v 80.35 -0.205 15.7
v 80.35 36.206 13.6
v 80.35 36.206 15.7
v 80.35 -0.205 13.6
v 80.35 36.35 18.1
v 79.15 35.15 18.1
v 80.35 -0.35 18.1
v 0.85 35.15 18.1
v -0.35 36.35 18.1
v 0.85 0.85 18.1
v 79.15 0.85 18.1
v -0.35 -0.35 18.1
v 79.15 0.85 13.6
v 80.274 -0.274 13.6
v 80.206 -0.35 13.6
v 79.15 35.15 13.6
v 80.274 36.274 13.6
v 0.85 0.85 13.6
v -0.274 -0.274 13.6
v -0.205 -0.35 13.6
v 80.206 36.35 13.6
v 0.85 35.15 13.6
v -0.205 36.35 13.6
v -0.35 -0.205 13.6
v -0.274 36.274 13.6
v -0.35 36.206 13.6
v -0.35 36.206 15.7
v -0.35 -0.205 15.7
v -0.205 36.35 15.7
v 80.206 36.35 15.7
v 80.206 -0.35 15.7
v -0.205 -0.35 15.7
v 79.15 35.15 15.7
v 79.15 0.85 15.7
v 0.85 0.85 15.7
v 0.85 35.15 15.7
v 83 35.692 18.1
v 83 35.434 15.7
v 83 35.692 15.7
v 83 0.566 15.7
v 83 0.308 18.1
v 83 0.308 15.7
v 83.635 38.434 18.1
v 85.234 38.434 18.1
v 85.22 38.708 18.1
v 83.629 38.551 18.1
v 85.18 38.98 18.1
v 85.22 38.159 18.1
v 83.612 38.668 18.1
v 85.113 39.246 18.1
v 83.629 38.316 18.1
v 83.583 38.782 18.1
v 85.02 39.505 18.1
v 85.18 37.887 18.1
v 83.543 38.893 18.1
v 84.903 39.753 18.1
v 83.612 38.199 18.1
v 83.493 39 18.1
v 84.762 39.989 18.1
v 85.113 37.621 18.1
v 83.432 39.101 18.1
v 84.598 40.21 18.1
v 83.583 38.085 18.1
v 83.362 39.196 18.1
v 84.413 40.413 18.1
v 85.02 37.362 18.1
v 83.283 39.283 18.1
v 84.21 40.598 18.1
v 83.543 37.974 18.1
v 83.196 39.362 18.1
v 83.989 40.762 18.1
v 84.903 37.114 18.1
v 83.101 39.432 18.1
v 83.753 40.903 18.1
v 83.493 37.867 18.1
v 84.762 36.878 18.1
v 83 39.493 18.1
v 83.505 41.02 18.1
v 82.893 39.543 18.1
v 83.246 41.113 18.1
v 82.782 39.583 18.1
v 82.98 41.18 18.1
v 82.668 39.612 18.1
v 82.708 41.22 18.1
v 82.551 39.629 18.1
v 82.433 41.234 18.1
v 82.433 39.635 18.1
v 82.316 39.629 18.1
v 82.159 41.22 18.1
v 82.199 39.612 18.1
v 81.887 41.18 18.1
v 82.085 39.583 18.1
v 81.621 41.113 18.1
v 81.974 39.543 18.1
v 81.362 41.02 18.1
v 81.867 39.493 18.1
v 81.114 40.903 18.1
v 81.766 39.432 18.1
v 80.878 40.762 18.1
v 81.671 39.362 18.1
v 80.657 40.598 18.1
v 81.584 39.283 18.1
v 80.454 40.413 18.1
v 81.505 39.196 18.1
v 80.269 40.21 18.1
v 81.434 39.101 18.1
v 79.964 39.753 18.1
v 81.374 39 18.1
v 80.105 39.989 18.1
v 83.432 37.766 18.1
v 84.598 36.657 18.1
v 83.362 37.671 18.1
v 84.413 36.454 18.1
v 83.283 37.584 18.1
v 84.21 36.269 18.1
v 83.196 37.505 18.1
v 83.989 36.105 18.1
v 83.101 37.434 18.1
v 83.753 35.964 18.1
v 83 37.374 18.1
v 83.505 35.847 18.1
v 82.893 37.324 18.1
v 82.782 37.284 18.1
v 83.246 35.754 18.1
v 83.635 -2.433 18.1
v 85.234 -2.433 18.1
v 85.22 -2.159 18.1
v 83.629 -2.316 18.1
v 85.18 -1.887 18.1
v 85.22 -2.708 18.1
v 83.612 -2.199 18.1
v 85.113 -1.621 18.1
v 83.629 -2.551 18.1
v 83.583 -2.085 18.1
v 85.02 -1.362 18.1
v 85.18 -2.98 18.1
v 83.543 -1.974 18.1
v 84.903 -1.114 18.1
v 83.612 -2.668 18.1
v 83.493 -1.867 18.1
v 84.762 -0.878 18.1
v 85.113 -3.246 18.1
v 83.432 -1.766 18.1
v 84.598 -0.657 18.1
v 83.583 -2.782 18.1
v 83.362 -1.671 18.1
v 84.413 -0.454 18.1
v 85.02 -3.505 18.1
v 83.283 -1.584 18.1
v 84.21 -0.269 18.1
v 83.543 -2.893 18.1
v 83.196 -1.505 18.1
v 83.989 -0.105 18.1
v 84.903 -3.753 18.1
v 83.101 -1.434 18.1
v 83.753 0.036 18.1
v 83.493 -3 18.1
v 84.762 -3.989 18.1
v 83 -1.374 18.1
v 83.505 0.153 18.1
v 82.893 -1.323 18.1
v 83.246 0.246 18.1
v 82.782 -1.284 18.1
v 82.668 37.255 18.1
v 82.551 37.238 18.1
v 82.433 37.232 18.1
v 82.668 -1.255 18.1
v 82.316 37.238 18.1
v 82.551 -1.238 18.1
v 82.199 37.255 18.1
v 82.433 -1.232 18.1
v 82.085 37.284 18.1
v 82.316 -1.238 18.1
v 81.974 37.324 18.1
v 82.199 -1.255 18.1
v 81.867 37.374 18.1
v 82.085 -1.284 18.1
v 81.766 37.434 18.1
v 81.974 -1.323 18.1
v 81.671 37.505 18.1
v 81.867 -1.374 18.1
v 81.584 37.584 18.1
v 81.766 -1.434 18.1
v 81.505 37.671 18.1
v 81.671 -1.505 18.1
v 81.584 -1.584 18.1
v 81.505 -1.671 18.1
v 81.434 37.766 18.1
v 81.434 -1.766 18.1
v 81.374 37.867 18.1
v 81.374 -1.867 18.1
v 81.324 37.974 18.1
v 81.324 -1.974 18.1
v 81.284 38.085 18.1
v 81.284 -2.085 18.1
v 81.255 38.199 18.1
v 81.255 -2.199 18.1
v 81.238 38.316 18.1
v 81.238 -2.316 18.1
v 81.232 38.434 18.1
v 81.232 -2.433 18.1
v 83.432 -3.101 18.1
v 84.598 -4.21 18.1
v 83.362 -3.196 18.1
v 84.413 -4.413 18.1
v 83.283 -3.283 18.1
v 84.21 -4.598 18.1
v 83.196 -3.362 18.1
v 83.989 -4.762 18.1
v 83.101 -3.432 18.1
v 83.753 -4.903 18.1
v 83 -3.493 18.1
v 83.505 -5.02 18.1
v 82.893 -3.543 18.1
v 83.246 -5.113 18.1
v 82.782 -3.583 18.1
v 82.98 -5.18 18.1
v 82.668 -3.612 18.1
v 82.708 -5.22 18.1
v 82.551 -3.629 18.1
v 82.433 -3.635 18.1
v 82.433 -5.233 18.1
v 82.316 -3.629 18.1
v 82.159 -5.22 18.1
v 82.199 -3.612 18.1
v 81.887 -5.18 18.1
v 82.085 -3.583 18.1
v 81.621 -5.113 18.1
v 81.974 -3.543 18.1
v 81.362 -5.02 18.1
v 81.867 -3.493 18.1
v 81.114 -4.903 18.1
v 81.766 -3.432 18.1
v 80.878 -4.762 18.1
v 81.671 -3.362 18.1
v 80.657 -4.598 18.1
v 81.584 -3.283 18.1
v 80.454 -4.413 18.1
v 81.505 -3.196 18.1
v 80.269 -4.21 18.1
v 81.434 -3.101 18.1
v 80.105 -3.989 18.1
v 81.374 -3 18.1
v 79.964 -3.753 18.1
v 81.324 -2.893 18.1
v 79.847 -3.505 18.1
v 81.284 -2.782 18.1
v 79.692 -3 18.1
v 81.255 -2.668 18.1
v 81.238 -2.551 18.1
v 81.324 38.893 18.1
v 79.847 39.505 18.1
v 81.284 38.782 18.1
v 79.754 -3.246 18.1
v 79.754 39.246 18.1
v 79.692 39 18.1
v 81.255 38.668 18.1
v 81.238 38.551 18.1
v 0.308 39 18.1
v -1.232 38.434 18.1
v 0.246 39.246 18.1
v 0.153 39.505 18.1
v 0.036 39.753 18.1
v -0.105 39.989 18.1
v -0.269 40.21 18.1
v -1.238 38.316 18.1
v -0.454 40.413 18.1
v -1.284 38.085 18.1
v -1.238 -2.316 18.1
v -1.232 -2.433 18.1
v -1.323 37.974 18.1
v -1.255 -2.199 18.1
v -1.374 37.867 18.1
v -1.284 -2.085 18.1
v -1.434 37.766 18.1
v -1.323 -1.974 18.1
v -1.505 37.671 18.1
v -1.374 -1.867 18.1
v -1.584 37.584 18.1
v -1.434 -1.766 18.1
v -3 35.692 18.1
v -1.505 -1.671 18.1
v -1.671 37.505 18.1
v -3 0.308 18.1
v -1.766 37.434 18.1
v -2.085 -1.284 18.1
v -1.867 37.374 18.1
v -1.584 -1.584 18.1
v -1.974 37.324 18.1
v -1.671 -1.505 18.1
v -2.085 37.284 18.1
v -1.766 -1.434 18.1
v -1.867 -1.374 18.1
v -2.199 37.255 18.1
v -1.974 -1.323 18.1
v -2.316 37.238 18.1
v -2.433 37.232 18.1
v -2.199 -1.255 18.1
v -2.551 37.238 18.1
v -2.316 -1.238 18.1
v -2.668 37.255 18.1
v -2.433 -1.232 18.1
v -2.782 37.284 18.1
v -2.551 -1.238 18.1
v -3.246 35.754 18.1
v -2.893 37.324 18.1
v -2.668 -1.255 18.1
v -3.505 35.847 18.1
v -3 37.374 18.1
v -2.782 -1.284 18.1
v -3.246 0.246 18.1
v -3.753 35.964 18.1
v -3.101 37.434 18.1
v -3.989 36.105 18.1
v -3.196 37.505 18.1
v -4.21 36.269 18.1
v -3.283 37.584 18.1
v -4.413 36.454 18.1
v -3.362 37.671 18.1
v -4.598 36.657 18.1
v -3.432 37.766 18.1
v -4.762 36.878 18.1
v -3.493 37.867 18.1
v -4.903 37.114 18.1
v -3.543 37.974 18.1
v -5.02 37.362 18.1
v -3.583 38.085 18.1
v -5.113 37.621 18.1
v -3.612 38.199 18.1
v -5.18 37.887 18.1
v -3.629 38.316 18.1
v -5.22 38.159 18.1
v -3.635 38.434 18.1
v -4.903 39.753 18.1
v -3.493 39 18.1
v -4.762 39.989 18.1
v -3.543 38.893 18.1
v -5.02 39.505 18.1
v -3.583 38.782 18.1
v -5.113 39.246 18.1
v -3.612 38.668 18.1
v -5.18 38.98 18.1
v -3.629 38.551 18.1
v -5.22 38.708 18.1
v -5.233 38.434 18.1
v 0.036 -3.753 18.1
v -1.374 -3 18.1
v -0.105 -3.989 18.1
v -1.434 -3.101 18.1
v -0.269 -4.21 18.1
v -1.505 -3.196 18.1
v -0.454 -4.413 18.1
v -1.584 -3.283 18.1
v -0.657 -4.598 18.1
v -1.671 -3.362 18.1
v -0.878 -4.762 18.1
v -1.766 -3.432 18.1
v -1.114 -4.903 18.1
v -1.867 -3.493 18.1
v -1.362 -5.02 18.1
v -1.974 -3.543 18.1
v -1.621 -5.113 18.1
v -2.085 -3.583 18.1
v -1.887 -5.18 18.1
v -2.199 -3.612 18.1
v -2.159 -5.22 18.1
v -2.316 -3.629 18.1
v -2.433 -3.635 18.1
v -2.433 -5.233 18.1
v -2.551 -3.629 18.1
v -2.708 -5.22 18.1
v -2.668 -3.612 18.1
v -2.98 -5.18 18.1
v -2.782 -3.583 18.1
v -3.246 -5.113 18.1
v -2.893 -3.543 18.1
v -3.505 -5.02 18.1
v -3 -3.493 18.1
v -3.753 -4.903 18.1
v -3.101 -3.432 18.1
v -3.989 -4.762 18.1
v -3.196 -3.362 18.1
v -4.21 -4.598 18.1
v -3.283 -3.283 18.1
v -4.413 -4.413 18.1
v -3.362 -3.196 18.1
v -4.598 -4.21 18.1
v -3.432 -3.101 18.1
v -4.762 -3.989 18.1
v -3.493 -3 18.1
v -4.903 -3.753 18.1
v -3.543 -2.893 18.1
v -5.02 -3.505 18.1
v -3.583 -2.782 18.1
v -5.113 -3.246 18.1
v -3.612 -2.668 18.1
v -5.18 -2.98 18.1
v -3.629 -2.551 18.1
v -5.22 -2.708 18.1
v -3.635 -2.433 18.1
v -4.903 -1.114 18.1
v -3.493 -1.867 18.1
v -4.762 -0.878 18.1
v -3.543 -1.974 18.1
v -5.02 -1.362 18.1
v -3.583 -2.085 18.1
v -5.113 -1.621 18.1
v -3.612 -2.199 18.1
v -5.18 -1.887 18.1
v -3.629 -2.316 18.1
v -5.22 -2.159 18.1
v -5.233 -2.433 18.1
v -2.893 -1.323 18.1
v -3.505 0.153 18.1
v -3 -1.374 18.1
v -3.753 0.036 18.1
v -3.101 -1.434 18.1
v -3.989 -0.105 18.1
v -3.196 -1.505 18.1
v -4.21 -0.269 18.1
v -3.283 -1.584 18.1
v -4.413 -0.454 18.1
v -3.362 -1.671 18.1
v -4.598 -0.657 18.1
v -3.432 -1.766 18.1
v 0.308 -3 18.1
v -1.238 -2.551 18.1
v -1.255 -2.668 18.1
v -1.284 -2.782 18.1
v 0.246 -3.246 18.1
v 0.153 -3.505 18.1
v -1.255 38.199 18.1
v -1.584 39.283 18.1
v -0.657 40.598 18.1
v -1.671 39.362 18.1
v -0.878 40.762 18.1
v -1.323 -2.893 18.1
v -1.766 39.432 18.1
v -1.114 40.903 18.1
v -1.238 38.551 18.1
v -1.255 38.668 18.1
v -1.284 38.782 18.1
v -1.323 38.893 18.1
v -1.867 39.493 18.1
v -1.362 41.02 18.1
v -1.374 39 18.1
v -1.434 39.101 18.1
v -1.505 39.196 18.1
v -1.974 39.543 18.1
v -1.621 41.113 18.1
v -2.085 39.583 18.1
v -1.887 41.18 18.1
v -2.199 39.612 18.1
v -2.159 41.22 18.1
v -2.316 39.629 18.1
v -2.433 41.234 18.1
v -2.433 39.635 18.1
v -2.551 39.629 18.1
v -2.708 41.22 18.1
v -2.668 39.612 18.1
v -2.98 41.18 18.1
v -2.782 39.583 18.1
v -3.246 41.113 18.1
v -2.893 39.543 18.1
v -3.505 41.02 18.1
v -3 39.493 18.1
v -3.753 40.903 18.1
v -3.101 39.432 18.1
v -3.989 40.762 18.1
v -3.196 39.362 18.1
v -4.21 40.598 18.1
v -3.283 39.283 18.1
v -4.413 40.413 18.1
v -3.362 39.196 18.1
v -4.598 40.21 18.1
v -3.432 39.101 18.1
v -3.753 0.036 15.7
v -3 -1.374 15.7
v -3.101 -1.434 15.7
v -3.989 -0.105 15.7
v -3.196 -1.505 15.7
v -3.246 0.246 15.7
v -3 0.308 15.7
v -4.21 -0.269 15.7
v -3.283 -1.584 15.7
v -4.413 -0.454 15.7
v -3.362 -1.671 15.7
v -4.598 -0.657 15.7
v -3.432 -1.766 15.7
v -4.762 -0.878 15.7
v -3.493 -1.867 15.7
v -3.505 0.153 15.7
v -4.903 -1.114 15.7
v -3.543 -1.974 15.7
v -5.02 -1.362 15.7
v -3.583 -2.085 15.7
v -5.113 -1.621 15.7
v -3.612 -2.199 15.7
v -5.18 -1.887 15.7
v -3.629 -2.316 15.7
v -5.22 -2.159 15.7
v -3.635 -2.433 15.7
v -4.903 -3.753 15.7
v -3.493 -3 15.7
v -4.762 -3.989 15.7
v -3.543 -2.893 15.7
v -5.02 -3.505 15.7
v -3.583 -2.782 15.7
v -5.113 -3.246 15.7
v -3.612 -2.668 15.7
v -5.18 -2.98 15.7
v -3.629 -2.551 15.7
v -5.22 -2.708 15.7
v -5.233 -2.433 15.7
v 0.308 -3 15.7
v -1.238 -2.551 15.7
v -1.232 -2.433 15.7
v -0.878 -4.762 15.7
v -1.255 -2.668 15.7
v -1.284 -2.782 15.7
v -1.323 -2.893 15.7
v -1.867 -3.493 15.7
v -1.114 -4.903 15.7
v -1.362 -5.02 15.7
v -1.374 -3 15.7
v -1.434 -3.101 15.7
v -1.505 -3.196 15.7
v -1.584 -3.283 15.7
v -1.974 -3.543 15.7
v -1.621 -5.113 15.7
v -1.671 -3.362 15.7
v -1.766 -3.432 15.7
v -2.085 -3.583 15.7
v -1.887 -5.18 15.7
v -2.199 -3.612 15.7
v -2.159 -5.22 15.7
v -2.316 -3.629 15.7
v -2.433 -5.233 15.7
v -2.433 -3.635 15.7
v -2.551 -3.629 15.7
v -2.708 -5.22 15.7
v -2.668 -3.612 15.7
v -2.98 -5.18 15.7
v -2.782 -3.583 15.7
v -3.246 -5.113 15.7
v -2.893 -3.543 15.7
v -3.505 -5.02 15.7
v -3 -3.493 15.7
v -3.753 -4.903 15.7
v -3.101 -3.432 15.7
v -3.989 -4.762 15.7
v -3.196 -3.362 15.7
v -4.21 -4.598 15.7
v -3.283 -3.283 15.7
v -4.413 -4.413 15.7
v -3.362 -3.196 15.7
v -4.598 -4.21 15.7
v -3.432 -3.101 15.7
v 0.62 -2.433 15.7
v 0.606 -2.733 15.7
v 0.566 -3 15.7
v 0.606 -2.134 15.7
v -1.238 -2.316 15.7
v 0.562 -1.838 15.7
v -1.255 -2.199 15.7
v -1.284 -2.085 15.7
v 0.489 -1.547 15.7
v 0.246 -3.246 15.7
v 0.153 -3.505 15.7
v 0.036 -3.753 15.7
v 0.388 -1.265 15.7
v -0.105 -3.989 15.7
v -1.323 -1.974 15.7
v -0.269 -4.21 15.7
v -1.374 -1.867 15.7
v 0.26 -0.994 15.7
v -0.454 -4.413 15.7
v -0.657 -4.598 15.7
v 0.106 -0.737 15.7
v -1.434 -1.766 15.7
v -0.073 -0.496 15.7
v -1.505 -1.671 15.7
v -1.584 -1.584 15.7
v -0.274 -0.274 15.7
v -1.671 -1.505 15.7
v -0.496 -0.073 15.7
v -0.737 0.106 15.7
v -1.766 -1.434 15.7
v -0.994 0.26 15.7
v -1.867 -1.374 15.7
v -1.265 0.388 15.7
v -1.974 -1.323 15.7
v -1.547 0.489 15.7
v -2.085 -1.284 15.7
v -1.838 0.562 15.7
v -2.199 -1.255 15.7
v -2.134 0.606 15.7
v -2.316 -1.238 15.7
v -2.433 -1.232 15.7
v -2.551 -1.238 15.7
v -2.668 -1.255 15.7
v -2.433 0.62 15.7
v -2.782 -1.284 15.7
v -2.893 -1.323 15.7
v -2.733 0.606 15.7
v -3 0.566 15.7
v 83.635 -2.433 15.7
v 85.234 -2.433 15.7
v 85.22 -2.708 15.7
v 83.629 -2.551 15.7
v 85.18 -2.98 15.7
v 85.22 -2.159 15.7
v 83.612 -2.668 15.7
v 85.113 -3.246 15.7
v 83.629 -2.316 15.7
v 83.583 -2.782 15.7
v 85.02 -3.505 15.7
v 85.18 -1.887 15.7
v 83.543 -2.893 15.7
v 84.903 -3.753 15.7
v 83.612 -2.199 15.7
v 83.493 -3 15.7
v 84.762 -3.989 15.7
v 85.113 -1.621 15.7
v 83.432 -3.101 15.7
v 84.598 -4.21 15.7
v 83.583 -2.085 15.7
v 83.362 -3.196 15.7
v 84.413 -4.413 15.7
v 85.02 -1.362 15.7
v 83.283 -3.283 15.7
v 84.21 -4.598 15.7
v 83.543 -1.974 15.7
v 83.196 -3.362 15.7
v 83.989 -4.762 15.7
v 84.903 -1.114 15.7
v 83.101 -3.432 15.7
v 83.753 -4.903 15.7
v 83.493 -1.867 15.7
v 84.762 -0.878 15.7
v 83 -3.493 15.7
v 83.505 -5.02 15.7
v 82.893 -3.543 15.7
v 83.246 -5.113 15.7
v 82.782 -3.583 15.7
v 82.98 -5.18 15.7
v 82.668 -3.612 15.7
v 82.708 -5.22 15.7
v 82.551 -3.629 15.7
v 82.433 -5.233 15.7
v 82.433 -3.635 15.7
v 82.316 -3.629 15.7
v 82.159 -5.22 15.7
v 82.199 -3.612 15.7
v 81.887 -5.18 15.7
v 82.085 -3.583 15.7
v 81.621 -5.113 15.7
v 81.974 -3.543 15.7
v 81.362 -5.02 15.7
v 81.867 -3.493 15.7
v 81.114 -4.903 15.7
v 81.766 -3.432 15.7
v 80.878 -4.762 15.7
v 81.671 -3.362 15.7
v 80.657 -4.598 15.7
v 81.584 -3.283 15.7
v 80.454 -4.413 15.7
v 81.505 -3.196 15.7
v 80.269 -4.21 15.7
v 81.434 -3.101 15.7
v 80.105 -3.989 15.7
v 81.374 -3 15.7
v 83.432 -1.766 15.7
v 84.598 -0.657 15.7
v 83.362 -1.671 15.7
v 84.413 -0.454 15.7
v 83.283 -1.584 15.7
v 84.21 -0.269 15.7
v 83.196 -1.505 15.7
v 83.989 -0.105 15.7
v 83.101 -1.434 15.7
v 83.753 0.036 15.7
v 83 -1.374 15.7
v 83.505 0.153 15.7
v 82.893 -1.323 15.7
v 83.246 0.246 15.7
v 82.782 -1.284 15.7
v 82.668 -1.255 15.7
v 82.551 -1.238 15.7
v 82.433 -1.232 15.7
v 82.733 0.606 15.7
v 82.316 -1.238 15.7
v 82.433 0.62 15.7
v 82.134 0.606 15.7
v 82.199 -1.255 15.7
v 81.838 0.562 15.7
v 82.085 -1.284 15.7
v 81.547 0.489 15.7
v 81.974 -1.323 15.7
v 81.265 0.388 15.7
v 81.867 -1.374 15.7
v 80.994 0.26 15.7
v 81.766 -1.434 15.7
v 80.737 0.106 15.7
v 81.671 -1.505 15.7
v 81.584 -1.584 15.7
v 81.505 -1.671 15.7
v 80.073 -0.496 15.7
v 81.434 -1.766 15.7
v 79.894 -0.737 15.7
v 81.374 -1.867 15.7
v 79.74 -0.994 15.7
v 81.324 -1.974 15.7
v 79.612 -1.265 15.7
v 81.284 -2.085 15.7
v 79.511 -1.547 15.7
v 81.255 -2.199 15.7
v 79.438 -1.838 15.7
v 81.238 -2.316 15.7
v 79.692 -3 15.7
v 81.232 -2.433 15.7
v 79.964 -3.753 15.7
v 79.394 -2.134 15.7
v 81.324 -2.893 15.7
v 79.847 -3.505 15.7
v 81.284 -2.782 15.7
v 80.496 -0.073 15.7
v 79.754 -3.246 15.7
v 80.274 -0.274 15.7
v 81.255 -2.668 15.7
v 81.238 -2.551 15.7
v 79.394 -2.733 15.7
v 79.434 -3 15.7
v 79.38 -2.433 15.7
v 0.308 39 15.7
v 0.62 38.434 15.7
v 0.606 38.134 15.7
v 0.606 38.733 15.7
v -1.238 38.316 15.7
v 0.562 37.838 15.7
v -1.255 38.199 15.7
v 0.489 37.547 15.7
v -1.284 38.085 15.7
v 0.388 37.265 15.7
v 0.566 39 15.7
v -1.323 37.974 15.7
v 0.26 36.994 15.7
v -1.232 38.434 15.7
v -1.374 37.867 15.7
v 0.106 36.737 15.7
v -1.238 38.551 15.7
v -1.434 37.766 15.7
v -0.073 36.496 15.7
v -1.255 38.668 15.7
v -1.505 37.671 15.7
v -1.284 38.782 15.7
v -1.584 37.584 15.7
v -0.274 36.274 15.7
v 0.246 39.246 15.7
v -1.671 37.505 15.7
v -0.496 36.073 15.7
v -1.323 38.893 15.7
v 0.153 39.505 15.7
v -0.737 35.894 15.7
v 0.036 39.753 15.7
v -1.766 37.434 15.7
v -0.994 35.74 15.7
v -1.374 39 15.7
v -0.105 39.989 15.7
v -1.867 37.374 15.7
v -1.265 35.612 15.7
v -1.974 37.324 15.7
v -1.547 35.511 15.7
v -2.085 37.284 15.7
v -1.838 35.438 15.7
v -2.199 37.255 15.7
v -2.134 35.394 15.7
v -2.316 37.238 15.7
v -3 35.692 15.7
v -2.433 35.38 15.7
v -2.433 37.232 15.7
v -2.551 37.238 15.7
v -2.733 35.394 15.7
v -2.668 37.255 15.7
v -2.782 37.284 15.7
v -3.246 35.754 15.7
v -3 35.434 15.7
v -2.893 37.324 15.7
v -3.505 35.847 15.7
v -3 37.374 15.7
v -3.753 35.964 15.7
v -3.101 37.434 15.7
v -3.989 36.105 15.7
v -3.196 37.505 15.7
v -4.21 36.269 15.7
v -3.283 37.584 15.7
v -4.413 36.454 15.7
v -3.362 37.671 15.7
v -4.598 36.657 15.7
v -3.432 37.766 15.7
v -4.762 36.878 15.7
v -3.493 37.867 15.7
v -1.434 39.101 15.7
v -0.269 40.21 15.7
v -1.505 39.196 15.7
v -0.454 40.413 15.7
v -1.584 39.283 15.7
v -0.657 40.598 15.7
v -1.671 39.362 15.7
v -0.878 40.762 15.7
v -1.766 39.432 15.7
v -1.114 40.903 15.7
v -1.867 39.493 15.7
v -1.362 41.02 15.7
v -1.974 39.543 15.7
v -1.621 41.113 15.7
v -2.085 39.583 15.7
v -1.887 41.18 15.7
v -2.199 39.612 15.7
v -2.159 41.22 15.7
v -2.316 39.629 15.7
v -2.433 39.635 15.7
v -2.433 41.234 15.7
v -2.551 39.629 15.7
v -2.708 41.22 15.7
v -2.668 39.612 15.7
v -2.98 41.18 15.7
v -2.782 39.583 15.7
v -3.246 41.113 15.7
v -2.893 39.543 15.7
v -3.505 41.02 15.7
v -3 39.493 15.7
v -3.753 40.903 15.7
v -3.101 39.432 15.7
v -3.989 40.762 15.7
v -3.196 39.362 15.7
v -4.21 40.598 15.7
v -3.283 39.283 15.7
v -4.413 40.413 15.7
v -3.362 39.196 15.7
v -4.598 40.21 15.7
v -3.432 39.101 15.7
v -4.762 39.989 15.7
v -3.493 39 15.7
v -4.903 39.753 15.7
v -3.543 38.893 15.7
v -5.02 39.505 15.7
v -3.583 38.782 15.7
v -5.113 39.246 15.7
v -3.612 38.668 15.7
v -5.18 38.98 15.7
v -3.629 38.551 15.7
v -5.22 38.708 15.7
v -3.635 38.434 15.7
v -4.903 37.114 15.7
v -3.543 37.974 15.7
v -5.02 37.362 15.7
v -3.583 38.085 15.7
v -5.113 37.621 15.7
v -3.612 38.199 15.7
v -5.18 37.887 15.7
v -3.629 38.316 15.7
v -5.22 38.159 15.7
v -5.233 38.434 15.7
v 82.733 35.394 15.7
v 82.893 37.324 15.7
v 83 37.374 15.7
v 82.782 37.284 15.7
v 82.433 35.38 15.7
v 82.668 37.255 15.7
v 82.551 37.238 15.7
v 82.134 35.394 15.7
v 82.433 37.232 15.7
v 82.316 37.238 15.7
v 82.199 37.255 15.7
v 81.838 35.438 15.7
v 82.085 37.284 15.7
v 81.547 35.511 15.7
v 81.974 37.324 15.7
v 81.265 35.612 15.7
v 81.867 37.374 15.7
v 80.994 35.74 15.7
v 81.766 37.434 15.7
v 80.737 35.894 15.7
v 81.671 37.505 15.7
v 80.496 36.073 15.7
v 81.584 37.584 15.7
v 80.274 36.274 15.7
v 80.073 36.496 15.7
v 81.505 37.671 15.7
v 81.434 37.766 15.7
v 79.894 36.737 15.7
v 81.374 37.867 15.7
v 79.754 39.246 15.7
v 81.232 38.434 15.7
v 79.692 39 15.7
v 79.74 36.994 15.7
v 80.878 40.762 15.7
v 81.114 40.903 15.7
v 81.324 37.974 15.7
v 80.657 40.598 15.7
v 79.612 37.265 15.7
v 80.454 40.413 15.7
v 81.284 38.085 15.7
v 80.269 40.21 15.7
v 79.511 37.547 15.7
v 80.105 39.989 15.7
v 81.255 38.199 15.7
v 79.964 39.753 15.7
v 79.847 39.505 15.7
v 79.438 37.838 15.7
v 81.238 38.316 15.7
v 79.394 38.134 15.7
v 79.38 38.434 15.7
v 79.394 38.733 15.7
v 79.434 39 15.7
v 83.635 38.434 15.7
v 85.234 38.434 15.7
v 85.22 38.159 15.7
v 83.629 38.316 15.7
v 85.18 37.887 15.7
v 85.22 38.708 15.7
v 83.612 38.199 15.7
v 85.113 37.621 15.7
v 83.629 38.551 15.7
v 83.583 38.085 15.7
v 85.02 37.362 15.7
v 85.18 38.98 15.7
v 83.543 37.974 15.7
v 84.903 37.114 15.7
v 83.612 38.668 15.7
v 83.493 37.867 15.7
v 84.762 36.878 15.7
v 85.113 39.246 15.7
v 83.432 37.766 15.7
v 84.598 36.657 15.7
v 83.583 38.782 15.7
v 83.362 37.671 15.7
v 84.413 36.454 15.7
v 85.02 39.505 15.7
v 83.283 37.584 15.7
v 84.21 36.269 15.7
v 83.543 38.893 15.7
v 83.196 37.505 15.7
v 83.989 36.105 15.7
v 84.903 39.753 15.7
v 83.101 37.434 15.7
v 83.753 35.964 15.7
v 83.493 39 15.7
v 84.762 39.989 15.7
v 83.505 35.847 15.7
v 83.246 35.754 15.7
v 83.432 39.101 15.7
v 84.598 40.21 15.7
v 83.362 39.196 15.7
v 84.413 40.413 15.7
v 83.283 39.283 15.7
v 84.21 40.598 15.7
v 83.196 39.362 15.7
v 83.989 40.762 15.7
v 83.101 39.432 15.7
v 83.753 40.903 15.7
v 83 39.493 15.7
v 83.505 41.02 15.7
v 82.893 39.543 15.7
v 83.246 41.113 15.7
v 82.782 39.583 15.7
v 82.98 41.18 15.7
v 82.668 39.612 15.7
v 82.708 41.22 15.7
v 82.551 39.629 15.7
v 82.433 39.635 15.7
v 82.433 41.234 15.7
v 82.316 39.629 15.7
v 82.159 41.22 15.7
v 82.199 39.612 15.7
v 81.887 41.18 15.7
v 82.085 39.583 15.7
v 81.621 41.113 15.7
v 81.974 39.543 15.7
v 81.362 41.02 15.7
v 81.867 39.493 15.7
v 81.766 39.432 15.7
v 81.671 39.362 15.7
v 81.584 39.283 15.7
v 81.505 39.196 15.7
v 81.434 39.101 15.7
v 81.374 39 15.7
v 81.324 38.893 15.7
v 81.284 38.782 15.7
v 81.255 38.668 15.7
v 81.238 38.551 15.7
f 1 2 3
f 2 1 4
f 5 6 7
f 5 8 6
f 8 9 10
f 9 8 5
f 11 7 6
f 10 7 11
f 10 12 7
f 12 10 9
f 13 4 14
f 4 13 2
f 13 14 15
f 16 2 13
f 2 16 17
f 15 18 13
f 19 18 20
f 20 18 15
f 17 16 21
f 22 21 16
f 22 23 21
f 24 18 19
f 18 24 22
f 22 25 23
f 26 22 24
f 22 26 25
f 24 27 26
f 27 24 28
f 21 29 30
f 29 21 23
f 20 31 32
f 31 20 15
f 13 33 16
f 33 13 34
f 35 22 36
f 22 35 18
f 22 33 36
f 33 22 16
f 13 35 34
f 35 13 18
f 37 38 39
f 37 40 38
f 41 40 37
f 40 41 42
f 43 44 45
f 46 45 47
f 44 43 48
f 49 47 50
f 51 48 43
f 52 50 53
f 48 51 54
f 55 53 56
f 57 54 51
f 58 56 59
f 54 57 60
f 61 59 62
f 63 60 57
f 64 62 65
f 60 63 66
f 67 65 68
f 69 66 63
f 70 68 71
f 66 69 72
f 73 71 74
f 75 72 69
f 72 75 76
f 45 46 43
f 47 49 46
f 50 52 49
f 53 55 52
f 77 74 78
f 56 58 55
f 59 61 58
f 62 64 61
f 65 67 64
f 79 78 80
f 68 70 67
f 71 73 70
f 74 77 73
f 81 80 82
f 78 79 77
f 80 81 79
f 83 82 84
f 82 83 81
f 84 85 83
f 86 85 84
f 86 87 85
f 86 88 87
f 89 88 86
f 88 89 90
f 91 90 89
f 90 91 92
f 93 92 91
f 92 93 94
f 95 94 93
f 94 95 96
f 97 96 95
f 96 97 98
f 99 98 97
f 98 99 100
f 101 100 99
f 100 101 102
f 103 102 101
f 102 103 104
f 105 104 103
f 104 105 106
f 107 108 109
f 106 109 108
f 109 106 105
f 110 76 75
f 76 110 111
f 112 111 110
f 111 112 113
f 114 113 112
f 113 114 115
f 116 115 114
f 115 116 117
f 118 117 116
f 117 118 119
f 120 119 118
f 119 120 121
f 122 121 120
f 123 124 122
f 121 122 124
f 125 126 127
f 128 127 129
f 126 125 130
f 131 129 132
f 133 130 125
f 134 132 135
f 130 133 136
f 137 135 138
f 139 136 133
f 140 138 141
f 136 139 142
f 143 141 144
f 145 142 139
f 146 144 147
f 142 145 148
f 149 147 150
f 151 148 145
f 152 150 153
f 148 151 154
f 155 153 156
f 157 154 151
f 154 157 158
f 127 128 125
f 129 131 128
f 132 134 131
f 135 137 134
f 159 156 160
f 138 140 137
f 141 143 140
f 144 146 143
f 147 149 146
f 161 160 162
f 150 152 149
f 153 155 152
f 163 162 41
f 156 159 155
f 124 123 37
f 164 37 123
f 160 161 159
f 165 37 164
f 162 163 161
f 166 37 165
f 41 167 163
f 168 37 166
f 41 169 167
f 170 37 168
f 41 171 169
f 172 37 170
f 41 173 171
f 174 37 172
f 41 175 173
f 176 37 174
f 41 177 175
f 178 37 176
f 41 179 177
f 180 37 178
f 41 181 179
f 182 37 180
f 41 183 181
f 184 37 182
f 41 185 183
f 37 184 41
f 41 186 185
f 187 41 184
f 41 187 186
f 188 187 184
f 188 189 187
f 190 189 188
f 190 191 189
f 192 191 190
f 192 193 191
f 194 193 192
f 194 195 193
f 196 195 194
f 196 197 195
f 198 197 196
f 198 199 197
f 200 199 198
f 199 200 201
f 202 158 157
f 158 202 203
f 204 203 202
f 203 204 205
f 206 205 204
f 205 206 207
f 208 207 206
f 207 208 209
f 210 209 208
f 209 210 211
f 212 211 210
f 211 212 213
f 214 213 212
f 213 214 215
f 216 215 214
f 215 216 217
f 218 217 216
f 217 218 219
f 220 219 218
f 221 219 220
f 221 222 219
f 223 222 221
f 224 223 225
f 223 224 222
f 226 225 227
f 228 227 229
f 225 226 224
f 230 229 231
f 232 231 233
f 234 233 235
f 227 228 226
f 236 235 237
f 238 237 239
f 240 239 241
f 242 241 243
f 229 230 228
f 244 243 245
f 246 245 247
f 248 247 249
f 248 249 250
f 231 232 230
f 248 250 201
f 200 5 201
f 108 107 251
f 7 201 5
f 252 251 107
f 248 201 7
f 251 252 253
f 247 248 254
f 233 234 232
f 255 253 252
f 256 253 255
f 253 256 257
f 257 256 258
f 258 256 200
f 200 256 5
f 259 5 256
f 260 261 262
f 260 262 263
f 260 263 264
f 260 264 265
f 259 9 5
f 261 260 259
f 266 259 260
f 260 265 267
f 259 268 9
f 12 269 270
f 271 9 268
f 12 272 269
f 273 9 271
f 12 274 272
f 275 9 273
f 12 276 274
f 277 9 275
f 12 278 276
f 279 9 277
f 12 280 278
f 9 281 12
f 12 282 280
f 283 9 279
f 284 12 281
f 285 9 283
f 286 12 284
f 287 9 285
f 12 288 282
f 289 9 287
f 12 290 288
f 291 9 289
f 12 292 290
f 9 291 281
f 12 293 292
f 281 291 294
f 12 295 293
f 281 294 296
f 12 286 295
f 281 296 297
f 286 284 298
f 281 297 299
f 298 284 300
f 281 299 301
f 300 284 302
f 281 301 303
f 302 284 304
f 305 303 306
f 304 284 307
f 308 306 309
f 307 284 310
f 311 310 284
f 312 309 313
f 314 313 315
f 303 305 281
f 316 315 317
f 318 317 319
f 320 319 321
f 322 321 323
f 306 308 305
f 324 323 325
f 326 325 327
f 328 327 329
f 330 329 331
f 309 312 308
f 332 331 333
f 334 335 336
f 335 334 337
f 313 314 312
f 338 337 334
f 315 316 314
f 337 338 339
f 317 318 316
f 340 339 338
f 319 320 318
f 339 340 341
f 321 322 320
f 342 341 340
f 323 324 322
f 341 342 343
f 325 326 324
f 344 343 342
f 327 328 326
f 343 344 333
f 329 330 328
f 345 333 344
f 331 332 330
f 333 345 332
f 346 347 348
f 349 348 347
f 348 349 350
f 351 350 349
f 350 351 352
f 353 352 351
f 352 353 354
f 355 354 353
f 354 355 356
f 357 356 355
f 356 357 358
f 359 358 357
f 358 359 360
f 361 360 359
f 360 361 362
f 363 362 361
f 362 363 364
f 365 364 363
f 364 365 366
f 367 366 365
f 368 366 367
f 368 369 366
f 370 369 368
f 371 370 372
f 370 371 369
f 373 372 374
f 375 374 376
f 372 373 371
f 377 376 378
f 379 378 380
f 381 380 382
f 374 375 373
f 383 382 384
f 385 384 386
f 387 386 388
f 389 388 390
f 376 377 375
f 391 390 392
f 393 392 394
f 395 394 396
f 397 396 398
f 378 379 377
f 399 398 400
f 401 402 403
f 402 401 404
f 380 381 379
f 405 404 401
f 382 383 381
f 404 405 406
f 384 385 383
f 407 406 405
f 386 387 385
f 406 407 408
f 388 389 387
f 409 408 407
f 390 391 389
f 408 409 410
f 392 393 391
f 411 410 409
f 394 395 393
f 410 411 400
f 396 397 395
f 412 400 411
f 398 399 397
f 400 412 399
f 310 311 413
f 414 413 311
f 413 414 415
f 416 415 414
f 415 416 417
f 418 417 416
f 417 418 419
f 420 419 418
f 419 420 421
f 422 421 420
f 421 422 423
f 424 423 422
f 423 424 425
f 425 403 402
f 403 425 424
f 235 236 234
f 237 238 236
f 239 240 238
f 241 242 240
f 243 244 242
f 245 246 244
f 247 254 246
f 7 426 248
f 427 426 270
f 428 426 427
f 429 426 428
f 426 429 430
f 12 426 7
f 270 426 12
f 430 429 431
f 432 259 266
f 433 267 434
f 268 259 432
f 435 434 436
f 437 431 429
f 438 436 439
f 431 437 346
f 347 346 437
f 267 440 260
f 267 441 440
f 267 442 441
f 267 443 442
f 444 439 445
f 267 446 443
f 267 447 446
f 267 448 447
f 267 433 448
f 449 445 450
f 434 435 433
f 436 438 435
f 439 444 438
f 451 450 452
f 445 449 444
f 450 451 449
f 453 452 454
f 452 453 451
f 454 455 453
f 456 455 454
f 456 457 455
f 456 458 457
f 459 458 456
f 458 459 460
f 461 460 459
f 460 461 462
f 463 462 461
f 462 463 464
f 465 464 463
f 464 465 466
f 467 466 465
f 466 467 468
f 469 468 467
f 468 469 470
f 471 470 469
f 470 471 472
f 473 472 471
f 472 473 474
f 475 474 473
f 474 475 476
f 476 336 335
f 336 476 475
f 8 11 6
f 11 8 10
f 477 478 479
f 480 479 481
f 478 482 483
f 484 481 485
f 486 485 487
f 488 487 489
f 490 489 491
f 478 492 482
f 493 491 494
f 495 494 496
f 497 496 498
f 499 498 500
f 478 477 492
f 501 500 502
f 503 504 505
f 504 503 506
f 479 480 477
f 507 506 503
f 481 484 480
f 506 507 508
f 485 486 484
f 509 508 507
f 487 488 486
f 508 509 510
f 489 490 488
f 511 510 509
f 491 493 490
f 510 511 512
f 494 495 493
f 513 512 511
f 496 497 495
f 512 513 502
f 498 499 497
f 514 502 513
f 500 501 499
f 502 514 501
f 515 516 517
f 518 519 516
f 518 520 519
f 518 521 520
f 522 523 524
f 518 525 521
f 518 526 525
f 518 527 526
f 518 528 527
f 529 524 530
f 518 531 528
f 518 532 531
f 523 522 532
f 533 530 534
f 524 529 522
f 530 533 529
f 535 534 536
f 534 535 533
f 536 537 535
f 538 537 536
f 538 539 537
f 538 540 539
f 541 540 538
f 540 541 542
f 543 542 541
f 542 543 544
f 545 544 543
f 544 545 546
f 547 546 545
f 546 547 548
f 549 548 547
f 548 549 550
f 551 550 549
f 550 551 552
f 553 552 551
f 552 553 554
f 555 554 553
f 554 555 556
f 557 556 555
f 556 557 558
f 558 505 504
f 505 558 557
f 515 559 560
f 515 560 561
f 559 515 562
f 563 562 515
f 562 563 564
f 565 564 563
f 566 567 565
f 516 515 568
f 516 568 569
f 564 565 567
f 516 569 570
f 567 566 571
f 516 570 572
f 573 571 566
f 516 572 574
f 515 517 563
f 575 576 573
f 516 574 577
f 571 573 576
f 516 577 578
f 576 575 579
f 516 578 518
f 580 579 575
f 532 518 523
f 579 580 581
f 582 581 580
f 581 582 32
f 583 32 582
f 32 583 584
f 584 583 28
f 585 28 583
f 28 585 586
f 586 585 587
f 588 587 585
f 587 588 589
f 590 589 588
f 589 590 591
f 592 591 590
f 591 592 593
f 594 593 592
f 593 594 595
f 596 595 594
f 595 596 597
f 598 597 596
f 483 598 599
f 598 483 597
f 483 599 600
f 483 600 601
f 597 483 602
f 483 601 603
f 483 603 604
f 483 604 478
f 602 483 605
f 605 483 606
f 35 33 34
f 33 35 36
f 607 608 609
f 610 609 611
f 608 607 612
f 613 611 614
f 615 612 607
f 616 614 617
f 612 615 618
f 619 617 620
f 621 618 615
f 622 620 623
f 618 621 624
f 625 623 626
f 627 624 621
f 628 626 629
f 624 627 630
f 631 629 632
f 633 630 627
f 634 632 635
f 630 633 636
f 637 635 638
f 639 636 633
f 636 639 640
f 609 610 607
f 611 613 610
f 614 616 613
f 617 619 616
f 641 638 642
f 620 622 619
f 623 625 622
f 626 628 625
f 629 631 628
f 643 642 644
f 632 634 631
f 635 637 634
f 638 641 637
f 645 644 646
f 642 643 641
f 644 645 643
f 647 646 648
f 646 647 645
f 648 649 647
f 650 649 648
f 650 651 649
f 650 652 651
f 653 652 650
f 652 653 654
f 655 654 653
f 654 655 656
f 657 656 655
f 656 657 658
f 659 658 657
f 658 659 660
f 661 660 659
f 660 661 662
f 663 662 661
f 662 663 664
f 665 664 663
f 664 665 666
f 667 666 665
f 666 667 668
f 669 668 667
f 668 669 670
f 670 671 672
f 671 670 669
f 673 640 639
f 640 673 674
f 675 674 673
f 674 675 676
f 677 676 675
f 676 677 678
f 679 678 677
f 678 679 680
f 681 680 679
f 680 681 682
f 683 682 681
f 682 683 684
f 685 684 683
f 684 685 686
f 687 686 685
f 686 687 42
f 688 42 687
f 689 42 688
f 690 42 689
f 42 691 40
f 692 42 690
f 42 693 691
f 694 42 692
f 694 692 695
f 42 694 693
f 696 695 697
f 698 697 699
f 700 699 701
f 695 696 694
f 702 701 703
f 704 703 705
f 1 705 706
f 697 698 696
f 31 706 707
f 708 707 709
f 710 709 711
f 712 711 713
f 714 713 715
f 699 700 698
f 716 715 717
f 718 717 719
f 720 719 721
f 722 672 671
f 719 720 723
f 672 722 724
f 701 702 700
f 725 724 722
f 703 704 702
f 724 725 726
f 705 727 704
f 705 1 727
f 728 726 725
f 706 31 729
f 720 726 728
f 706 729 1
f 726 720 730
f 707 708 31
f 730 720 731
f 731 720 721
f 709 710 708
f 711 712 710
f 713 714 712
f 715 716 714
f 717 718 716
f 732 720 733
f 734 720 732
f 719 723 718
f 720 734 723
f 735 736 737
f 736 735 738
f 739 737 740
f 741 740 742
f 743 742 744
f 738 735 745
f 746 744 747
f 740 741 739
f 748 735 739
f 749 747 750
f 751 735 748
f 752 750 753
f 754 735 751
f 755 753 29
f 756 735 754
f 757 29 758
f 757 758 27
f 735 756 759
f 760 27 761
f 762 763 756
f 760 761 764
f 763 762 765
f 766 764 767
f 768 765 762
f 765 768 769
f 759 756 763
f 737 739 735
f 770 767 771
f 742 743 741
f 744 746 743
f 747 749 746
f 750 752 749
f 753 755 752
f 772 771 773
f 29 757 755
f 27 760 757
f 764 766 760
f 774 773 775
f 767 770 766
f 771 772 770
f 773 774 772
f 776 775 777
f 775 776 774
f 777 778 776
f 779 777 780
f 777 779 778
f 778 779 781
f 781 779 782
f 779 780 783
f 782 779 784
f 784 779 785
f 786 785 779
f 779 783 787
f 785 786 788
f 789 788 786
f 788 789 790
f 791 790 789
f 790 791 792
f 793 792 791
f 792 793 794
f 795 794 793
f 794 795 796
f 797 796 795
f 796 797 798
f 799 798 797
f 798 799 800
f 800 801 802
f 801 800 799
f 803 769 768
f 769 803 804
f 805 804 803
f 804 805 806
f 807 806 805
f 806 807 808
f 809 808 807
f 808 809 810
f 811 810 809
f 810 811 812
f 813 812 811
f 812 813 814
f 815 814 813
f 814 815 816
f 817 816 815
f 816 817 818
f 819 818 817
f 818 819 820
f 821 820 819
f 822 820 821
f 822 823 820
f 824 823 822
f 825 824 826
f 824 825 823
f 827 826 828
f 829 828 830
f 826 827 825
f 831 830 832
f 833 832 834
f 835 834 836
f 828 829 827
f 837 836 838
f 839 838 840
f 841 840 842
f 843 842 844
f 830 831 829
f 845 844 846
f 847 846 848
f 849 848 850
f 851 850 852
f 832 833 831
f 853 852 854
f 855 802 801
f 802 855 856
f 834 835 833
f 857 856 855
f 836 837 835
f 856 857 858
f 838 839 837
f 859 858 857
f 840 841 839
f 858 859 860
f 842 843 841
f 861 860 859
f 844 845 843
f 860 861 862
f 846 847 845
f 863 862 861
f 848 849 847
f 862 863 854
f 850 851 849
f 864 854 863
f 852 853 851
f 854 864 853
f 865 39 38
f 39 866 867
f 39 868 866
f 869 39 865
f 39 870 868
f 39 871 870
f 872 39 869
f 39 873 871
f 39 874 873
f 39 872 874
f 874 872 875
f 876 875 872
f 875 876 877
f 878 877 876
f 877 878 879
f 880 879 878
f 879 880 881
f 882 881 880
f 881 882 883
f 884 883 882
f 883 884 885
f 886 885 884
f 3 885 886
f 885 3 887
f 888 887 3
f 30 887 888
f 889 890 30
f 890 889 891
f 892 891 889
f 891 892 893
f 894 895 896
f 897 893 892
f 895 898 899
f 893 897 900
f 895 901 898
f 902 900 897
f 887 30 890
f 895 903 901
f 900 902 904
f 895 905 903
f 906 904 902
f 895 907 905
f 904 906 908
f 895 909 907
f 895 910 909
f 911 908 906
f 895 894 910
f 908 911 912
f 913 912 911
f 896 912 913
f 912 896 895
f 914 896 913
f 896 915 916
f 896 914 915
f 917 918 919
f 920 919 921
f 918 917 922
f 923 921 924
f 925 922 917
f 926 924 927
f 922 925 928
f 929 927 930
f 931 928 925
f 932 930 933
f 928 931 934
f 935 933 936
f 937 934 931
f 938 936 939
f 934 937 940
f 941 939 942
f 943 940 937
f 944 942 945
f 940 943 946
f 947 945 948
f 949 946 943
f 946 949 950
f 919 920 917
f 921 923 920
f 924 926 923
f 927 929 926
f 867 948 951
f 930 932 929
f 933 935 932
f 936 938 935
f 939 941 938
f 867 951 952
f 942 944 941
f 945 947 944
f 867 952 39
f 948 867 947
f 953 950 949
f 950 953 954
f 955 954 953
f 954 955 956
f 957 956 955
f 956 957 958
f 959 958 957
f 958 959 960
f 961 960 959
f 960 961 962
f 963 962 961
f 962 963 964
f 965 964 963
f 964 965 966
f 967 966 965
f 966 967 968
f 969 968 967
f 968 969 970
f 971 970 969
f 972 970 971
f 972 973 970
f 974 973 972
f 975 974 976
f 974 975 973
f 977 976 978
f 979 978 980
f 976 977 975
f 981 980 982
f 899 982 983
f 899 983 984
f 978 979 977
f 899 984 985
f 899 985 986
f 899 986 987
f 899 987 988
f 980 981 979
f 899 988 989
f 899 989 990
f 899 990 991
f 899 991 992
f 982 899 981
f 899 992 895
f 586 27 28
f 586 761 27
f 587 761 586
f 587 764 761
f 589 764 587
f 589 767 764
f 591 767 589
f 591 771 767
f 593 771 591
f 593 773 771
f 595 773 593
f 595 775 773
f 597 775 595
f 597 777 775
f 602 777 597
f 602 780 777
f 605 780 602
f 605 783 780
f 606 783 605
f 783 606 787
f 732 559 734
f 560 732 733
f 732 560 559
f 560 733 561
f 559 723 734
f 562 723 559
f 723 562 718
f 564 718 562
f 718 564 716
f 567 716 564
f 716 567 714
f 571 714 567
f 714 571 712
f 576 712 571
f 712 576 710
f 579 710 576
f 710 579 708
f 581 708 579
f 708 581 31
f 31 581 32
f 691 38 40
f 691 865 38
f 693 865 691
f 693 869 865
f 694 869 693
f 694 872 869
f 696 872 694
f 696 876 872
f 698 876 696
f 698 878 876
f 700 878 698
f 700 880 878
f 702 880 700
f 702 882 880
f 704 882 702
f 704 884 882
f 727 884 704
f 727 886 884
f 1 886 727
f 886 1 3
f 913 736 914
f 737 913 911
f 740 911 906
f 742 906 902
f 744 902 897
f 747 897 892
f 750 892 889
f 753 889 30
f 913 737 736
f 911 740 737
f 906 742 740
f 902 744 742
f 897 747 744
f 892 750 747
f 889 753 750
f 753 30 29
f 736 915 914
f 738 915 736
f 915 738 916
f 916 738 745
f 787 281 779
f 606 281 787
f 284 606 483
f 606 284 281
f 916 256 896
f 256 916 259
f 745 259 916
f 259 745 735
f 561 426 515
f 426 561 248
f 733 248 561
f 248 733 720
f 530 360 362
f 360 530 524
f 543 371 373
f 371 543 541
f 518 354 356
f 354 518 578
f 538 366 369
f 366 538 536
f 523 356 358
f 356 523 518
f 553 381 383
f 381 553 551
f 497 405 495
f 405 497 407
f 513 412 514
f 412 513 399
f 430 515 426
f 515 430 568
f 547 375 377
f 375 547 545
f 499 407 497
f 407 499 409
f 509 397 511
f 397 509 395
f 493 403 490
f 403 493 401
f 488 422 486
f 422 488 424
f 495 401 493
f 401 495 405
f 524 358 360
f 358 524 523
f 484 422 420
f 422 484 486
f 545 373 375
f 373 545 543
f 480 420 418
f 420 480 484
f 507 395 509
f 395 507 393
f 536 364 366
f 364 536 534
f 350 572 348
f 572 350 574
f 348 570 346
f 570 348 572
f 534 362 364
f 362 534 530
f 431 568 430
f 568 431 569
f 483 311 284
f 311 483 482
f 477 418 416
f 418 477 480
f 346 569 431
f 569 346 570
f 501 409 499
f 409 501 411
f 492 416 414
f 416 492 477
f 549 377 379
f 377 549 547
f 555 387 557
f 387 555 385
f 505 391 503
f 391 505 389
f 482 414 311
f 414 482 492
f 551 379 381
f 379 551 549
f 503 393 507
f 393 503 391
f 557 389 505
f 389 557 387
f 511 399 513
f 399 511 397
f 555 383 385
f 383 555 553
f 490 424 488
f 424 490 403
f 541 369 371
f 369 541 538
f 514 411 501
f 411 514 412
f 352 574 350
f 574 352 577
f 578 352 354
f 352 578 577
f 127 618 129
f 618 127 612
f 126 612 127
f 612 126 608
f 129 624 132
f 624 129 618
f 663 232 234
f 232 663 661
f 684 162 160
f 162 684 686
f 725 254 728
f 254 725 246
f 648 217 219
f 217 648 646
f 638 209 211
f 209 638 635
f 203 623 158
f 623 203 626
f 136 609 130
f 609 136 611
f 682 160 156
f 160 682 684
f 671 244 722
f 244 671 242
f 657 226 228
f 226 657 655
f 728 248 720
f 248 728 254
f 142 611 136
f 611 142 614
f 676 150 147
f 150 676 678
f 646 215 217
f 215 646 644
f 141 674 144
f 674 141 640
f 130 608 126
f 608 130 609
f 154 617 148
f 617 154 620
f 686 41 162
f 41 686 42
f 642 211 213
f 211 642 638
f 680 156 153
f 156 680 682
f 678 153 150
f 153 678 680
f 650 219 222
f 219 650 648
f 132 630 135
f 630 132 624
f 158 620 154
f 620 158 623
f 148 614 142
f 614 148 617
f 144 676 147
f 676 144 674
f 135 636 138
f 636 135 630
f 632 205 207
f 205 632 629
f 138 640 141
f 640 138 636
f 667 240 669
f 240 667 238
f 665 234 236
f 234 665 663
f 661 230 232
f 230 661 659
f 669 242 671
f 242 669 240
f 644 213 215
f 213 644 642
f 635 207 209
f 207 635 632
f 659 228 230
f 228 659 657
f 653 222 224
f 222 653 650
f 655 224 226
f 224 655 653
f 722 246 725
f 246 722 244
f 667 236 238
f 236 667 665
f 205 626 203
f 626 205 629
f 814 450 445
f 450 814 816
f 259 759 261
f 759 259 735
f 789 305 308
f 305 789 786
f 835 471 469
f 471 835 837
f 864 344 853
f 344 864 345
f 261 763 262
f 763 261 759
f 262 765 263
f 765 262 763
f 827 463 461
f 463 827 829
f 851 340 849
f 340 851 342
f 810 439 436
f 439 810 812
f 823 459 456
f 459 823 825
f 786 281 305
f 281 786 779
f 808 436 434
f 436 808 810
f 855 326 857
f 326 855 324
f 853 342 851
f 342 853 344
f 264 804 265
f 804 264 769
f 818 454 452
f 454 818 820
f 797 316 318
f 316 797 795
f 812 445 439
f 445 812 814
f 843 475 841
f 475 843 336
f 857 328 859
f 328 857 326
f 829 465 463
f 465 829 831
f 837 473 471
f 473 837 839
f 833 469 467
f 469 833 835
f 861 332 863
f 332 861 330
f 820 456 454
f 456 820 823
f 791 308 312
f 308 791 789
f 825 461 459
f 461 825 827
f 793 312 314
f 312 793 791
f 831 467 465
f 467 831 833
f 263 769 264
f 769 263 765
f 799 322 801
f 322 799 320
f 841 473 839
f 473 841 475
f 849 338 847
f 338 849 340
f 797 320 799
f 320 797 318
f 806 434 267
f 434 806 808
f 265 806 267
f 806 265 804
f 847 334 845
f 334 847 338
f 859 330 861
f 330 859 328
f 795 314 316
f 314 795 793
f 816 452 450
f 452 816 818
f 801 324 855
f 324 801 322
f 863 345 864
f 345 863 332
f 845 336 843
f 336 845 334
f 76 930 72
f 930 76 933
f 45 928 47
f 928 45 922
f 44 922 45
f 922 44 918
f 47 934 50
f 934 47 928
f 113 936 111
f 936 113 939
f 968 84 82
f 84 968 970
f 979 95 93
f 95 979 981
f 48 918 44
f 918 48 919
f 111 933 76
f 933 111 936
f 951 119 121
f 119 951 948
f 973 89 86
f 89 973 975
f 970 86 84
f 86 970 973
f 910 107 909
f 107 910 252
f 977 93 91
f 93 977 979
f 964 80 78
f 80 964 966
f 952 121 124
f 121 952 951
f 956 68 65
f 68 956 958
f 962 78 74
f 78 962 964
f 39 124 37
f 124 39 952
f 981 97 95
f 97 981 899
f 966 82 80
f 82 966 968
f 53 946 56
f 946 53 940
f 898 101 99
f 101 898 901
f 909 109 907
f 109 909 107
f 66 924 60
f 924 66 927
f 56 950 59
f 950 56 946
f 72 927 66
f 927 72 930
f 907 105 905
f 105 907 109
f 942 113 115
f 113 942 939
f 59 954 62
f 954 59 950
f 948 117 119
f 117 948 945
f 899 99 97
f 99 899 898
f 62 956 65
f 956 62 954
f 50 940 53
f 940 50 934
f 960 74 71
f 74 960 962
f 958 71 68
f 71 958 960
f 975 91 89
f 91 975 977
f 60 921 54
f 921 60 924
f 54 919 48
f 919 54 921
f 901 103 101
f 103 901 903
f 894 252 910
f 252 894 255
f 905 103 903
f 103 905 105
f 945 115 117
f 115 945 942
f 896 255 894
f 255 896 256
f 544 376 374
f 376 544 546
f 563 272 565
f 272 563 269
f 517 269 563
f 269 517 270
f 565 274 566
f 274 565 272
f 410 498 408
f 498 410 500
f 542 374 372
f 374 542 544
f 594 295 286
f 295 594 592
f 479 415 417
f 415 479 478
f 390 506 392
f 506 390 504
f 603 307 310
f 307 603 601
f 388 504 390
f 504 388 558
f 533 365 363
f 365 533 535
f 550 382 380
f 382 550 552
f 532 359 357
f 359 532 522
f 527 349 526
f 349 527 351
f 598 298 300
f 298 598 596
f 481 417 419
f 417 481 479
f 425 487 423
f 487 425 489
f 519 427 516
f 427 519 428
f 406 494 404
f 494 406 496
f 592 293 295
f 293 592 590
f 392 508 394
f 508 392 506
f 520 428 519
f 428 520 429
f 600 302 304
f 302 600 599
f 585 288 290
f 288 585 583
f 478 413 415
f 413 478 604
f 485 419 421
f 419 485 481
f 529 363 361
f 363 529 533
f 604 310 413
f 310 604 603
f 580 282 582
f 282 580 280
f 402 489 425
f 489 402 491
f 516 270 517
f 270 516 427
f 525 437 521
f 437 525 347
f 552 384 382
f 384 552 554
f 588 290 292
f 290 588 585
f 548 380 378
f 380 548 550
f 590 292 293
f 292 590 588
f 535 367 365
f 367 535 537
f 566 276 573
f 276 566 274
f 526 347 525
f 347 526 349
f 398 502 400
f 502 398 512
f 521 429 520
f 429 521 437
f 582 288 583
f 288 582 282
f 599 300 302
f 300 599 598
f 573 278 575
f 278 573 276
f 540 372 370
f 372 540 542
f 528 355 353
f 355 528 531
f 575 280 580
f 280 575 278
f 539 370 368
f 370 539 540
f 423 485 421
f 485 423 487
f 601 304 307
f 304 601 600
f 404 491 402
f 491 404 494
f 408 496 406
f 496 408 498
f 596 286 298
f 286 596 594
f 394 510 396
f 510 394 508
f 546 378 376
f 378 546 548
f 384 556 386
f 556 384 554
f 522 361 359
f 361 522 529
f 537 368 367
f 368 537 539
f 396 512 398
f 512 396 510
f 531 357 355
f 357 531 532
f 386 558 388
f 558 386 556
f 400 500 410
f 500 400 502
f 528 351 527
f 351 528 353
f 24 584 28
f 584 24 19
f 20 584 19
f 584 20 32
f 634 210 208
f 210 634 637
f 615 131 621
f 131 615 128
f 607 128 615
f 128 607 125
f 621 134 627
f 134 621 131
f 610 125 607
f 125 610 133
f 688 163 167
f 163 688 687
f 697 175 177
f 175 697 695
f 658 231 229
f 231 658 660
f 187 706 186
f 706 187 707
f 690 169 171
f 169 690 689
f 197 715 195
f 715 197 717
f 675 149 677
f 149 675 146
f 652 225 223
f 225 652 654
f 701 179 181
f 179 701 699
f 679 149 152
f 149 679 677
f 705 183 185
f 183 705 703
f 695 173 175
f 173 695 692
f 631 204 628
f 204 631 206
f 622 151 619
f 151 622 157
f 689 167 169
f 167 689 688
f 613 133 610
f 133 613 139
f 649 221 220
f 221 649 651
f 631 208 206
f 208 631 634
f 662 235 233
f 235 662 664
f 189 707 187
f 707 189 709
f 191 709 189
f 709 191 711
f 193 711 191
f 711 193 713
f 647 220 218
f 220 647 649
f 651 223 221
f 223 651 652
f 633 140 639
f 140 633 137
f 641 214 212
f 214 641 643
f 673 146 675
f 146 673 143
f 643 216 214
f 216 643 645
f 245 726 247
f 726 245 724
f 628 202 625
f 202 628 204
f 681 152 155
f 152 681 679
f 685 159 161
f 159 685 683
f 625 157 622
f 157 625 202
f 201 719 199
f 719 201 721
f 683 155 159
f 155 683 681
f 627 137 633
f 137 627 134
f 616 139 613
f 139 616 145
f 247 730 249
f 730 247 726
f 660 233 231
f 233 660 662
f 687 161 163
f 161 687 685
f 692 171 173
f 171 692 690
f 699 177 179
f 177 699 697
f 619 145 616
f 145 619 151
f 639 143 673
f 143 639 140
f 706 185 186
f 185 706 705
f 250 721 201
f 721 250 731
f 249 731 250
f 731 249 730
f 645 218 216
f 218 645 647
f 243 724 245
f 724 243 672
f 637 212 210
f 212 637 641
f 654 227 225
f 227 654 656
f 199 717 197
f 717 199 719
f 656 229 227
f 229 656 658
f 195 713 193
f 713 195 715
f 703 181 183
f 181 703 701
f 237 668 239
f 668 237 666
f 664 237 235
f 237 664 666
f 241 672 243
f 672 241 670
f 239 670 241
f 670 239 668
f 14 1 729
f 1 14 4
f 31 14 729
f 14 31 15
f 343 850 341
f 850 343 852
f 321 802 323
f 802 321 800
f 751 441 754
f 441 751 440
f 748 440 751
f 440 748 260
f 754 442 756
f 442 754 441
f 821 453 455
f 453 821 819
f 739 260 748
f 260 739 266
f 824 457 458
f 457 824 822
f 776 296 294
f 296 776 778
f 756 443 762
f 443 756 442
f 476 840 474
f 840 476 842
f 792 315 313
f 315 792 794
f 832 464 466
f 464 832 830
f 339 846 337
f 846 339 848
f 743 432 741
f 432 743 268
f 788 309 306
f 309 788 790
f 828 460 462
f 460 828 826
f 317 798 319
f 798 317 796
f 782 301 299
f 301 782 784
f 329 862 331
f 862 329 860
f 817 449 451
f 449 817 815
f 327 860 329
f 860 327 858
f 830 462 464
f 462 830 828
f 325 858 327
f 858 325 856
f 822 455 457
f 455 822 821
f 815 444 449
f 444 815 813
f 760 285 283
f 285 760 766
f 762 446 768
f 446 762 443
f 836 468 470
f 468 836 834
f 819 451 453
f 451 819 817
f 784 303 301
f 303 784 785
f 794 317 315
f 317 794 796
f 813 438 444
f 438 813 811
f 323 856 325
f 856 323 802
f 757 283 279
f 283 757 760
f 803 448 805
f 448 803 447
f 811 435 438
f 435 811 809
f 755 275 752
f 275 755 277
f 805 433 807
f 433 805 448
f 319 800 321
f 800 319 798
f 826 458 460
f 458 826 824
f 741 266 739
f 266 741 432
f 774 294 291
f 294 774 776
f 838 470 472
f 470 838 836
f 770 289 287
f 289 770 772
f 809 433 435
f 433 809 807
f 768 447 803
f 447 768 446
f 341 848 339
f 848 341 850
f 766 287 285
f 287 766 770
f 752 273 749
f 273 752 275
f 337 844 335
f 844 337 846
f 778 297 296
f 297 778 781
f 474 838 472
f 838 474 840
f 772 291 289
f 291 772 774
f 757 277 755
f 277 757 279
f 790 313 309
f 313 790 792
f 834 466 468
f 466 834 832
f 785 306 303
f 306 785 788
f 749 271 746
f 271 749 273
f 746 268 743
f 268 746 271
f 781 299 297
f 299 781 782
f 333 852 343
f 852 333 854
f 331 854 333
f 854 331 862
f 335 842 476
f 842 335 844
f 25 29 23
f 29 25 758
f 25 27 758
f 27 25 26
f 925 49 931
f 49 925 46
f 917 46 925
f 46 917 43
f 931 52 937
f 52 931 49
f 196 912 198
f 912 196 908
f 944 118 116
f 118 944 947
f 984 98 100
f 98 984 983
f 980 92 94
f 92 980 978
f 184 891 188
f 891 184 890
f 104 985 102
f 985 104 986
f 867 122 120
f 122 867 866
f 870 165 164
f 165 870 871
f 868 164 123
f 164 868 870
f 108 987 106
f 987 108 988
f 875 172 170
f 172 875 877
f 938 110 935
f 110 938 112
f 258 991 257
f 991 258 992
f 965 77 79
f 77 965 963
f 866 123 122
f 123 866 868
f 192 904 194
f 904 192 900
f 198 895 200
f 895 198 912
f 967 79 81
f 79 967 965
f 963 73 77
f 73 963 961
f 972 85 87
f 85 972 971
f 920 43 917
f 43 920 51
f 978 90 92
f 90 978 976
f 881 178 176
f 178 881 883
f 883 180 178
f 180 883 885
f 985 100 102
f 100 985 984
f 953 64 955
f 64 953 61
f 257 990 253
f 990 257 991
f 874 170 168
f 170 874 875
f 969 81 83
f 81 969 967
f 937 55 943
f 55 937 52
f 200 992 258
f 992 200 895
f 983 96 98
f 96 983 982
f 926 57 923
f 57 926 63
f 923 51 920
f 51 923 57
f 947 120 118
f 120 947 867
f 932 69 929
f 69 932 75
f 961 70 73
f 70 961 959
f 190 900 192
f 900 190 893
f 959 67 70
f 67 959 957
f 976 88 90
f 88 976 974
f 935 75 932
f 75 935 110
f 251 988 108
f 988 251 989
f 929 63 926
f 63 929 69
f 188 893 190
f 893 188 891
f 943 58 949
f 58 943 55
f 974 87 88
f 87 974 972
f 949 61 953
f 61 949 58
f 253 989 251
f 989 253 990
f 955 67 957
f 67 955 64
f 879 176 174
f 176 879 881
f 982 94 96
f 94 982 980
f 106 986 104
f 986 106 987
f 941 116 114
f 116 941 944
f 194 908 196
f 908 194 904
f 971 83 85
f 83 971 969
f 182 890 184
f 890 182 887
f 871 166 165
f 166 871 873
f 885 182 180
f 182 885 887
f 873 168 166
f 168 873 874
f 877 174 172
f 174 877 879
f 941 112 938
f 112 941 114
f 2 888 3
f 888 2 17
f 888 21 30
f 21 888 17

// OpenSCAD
// body lid
difference() {
  union() {
    // body lid (lid_plate)
    multmatrix([[1, 0, 0, 40], [0, 1, 0, 18], [0, 0, 1, 15.7], [0, 0, 0, 1]]) translate([-43, -21, 0]) cube([86, 42, 2.4]);
    // add lid_lip (lip)
    multmatrix([[1, 0, 0, 40], [0, 1, 0, 18], [0, 0, 1, 13.6], [0, 0, 0, 1]]) difference() { translate([-40.35, -18.35, 0]) cube([80.7, 36.7, 4.5]); translate([0, 0, -1]) translate([-39.15, -17.15, 0]) cube([78.3, 34.3, 6.5]); }
    // add boss_1_pad (pad)
    multmatrix([[1, 0, 0, -2.433452], [0, 1, 0, -2.433452], [0, 0, 1, 15.7], [0, 0, 0, 1]]) cylinder(h=2.4, d=5.6, $fn=64);
    // add boss_2_pad (pad)
    multmatrix([[1, 0, 0, 82.433452], [0, 1, 0, -2.433452], [0, 0, 1, 15.7], [0, 0, 0, 1]]) cylinder(h=2.4, d=5.6, $fn=64);
    // add boss_3_pad (pad)
    multmatrix([[1, 0, 0, -2.433452], [0, 1, 0, 38.433452], [0, 0, 1, 15.7], [0, 0, 0, 1]]) cylinder(h=2.4, d=5.6, $fn=64);
    // add boss_4_pad (pad)
    multmatrix([[1, 0, 0, 82.433452], [0, 1, 0, 38.433452], [0, 0, 1, 15.7], [0, 0, 0, 1]]) cylinder(h=2.4, d=5.6, $fn=64);
  }
  // cut boss_1_lid_hole (screw_hole)
  multmatrix([[1, 0, 0, -2.433452], [0, 1, 0, -2.433452], [0, 0, 1, 14.7], [0, 0, 0, 1]]) cylinder(h=4.4, d=2.402894, $fn=64);
  // cut boss_1_lip_notch (lip_notch)
  multmatrix([[1, 0, 0, -2.433452], [0, 1, 0, -2.433452], [0, 0, 1, 12.6], [0, 0, 0, 1]]) cylinder(h=3.1, d=6.107357, $fn=64);
  // cut boss_2_lid_hole (screw_hole)
  multmatrix([[1, 0, 0, 82.433452], [0, 1, 0, -2.433452], [0, 0, 1, 14.7], [0, 0, 0, 1]]) cylinder(h=4.4, d=2.402894, $fn=64);
  // cut boss_2_lip_notch (lip_notch)
  multmatrix([[1, 0, 0, 82.433452], [0, 1, 0, -2.433452], [0, 0, 1, 12.6], [0, 0, 0, 1]]) cylinder(h=3.1, d=6.107357, $fn=64);
  // cut boss_3_lid_hole (screw_hole)
  multmatrix([[1, 0, 0, -2.433452], [0, 1, 0, 38.433452], [0, 0, 1, 14.7], [0, 0, 0, 1]]) cylinder(h=4.4, d=2.402894, $fn=64);
  // cut boss_3_lip_notch (lip_notch)
  multmatrix([[1, 0, 0, -2.433452], [0, 1, 0, 38.433452], [0, 0, 1, 12.6], [0, 0, 0, 1]]) cylinder(h=3.1, d=6.107357, $fn=64);
  // cut boss_4_lid_hole (screw_hole)
  multmatrix([[1, 0, 0, 82.433452], [0, 1, 0, 38.433452], [0, 0, 1, 14.7], [0, 0, 0, 1]]) cylinder(h=4.4, d=2.402894, $fn=64);
  // cut boss_4_lip_notch (lip_notch)
  multmatrix([[1, 0, 0, 82.433452], [0, 1, 0, 38.433452], [0, 0, 1, 12.6], [0, 0, 0, 1]]) cylinder(h=3.1, d=6.107357, $fn=64);
}
